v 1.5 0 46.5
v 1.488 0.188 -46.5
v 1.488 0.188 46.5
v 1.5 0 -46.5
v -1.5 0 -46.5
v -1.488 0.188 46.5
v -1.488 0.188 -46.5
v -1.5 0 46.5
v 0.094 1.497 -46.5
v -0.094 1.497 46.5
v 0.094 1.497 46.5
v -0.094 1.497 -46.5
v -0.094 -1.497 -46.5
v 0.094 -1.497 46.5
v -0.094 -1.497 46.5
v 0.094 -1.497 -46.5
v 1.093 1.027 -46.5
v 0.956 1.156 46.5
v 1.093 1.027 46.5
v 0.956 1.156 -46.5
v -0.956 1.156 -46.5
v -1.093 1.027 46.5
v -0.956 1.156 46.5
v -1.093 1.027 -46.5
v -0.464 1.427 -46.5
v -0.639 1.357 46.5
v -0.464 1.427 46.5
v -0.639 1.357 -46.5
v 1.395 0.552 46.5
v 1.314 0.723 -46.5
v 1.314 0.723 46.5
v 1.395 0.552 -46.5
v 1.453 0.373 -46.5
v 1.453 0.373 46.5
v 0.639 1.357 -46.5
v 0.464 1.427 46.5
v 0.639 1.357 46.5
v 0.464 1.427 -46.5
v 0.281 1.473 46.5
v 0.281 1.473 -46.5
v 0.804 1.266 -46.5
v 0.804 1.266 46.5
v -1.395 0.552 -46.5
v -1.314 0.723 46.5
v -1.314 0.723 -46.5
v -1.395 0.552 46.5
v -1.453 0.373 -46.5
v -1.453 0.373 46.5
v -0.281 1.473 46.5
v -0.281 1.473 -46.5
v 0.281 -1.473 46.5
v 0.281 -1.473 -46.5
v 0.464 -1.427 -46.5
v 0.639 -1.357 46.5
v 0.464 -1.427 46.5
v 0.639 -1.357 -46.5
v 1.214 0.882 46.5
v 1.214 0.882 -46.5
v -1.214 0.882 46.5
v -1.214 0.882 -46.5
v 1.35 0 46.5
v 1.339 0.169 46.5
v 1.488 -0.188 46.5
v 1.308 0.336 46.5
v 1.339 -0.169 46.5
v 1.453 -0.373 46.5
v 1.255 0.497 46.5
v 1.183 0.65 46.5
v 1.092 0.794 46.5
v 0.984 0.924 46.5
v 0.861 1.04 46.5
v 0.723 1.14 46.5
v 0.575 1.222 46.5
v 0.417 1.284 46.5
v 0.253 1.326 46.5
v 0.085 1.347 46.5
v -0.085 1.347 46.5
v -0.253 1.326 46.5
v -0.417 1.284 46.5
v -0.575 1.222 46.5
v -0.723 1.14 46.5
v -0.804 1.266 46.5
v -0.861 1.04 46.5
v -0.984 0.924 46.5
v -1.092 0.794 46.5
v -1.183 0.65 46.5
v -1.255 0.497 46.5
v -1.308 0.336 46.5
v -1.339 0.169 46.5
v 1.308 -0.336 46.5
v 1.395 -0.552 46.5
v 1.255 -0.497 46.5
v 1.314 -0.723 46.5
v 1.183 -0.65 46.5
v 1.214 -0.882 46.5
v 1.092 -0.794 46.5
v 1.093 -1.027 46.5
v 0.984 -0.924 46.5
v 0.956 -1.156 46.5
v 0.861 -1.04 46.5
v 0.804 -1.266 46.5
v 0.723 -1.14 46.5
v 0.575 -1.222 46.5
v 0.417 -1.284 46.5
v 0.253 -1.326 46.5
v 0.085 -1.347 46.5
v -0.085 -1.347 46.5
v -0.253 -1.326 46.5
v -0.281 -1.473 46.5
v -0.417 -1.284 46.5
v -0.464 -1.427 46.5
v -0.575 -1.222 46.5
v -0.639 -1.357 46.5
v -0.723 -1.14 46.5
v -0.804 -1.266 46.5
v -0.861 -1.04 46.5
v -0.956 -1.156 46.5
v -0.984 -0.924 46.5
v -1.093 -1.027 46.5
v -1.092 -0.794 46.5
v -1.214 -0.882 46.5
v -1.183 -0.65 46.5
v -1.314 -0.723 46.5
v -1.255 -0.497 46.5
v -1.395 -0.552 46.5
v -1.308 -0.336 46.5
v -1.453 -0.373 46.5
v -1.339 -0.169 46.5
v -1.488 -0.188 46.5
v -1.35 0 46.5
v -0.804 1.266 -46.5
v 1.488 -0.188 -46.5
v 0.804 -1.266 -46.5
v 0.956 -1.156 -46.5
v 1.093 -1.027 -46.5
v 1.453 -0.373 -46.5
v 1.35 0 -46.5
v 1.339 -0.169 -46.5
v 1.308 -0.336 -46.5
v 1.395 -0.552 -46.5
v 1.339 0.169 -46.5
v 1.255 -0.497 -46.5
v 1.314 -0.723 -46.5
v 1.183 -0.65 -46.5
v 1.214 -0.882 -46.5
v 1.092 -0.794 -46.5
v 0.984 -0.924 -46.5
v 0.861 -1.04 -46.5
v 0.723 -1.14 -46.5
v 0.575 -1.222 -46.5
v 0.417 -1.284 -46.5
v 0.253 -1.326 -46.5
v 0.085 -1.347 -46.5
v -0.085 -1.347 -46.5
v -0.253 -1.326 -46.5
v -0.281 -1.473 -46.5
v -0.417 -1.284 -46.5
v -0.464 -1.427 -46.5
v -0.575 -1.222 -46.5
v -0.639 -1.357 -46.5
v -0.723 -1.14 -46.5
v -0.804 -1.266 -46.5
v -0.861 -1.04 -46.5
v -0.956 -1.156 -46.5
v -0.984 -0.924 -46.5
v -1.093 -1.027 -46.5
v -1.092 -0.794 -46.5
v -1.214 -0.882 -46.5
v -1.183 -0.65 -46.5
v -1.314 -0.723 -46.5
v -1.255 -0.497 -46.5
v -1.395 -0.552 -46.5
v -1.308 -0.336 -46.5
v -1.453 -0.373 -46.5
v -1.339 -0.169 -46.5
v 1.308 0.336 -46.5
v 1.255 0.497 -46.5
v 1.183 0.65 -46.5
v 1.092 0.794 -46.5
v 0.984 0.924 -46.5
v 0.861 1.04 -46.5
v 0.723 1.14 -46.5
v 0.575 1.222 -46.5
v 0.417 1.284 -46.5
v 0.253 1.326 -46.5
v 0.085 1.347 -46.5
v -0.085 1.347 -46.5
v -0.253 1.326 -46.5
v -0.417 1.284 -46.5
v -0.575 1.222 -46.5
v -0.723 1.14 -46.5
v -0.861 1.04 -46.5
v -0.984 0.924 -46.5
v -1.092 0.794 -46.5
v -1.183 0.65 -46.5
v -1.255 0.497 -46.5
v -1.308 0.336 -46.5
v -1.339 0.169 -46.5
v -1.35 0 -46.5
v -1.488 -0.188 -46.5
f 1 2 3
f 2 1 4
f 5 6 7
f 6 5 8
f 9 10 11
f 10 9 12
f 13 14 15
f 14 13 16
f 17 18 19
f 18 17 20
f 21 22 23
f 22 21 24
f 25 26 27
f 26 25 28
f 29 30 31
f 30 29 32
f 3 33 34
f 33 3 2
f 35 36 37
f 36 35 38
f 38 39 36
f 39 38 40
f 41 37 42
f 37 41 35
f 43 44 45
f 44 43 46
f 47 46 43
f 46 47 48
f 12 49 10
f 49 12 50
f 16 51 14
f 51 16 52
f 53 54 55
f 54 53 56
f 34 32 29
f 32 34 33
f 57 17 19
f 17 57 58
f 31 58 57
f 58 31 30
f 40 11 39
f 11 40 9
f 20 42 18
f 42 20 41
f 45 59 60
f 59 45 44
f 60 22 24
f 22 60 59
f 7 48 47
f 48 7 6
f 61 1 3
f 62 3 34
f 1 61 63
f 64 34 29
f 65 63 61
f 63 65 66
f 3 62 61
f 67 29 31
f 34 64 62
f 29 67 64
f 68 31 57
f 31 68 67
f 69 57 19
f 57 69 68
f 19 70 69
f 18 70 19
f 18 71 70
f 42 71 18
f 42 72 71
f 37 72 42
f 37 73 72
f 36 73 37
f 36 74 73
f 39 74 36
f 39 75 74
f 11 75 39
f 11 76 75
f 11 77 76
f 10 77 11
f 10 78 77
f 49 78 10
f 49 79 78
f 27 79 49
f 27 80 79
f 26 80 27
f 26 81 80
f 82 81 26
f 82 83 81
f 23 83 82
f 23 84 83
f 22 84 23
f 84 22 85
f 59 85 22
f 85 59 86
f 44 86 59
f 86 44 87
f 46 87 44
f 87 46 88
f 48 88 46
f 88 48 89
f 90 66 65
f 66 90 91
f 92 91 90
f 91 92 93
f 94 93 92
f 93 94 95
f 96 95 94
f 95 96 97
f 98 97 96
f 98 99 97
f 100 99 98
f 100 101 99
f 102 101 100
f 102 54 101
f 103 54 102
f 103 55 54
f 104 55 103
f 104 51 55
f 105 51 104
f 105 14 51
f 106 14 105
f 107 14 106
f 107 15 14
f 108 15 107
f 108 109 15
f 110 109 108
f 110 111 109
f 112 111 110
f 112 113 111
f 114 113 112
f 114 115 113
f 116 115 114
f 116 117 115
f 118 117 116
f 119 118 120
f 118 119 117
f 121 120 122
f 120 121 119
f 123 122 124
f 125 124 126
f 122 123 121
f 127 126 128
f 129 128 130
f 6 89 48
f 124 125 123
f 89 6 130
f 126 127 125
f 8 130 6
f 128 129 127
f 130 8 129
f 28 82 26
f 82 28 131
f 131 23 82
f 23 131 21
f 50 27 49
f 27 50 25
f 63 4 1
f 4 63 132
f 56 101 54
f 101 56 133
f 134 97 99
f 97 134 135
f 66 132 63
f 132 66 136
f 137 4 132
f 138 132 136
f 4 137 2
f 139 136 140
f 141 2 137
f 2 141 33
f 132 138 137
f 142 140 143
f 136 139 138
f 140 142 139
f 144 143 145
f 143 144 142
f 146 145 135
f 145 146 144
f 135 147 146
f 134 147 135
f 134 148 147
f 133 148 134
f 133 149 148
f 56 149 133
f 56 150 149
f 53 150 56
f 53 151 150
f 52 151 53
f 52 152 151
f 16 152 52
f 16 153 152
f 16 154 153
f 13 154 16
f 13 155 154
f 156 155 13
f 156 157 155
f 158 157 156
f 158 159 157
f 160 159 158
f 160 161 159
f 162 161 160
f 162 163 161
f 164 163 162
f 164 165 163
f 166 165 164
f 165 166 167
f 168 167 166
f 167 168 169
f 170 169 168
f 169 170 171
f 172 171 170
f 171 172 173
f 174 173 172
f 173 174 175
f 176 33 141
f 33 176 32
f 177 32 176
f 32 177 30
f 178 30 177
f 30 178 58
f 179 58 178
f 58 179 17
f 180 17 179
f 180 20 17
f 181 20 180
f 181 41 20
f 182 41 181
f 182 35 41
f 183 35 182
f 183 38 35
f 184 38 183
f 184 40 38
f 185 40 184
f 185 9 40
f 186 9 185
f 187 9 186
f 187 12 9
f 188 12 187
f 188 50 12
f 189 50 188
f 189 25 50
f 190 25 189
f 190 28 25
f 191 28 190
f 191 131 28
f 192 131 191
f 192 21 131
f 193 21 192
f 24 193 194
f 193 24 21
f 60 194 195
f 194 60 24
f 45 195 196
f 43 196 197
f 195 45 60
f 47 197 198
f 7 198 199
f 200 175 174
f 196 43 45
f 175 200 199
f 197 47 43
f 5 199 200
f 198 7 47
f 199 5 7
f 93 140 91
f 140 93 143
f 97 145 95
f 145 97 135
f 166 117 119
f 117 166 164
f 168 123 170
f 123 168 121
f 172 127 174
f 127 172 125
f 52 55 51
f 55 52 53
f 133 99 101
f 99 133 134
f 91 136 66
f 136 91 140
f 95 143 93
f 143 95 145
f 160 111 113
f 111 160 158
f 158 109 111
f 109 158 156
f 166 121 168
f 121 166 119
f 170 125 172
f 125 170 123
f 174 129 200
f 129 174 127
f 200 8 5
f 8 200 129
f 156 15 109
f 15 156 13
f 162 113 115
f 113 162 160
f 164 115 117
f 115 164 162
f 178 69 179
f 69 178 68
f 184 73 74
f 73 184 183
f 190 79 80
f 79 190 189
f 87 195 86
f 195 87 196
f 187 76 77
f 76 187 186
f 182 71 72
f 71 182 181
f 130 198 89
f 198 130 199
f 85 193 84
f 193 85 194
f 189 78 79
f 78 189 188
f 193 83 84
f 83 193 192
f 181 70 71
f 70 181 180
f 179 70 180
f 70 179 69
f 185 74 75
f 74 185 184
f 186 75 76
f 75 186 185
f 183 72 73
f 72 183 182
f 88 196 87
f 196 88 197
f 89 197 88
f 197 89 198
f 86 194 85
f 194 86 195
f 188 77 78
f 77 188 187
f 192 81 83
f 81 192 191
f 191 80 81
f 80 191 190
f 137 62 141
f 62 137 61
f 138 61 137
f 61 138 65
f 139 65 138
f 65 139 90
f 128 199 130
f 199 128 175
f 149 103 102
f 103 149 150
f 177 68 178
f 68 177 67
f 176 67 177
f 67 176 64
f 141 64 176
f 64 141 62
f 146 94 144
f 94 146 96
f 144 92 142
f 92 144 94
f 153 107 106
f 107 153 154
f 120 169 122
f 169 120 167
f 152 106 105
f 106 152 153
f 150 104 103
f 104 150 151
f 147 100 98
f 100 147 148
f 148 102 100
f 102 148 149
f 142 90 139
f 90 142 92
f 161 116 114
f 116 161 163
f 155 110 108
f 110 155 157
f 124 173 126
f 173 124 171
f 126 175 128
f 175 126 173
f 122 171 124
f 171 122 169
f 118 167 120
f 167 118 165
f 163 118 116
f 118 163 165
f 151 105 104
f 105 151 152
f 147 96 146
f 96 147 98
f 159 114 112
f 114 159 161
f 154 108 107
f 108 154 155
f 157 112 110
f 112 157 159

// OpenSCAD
$fn = 50;


difference() {
	union() {
		translate(v = [0, 0, -46.5000000000]) {
			cylinder(h = 93, r = 1.5000000000);
		}
	}
	union() {
		translate(v = [0, 0, -100.0000000000]) {
			cylinder(h = 200, r = 1.3500000000);
		}
	}
}
